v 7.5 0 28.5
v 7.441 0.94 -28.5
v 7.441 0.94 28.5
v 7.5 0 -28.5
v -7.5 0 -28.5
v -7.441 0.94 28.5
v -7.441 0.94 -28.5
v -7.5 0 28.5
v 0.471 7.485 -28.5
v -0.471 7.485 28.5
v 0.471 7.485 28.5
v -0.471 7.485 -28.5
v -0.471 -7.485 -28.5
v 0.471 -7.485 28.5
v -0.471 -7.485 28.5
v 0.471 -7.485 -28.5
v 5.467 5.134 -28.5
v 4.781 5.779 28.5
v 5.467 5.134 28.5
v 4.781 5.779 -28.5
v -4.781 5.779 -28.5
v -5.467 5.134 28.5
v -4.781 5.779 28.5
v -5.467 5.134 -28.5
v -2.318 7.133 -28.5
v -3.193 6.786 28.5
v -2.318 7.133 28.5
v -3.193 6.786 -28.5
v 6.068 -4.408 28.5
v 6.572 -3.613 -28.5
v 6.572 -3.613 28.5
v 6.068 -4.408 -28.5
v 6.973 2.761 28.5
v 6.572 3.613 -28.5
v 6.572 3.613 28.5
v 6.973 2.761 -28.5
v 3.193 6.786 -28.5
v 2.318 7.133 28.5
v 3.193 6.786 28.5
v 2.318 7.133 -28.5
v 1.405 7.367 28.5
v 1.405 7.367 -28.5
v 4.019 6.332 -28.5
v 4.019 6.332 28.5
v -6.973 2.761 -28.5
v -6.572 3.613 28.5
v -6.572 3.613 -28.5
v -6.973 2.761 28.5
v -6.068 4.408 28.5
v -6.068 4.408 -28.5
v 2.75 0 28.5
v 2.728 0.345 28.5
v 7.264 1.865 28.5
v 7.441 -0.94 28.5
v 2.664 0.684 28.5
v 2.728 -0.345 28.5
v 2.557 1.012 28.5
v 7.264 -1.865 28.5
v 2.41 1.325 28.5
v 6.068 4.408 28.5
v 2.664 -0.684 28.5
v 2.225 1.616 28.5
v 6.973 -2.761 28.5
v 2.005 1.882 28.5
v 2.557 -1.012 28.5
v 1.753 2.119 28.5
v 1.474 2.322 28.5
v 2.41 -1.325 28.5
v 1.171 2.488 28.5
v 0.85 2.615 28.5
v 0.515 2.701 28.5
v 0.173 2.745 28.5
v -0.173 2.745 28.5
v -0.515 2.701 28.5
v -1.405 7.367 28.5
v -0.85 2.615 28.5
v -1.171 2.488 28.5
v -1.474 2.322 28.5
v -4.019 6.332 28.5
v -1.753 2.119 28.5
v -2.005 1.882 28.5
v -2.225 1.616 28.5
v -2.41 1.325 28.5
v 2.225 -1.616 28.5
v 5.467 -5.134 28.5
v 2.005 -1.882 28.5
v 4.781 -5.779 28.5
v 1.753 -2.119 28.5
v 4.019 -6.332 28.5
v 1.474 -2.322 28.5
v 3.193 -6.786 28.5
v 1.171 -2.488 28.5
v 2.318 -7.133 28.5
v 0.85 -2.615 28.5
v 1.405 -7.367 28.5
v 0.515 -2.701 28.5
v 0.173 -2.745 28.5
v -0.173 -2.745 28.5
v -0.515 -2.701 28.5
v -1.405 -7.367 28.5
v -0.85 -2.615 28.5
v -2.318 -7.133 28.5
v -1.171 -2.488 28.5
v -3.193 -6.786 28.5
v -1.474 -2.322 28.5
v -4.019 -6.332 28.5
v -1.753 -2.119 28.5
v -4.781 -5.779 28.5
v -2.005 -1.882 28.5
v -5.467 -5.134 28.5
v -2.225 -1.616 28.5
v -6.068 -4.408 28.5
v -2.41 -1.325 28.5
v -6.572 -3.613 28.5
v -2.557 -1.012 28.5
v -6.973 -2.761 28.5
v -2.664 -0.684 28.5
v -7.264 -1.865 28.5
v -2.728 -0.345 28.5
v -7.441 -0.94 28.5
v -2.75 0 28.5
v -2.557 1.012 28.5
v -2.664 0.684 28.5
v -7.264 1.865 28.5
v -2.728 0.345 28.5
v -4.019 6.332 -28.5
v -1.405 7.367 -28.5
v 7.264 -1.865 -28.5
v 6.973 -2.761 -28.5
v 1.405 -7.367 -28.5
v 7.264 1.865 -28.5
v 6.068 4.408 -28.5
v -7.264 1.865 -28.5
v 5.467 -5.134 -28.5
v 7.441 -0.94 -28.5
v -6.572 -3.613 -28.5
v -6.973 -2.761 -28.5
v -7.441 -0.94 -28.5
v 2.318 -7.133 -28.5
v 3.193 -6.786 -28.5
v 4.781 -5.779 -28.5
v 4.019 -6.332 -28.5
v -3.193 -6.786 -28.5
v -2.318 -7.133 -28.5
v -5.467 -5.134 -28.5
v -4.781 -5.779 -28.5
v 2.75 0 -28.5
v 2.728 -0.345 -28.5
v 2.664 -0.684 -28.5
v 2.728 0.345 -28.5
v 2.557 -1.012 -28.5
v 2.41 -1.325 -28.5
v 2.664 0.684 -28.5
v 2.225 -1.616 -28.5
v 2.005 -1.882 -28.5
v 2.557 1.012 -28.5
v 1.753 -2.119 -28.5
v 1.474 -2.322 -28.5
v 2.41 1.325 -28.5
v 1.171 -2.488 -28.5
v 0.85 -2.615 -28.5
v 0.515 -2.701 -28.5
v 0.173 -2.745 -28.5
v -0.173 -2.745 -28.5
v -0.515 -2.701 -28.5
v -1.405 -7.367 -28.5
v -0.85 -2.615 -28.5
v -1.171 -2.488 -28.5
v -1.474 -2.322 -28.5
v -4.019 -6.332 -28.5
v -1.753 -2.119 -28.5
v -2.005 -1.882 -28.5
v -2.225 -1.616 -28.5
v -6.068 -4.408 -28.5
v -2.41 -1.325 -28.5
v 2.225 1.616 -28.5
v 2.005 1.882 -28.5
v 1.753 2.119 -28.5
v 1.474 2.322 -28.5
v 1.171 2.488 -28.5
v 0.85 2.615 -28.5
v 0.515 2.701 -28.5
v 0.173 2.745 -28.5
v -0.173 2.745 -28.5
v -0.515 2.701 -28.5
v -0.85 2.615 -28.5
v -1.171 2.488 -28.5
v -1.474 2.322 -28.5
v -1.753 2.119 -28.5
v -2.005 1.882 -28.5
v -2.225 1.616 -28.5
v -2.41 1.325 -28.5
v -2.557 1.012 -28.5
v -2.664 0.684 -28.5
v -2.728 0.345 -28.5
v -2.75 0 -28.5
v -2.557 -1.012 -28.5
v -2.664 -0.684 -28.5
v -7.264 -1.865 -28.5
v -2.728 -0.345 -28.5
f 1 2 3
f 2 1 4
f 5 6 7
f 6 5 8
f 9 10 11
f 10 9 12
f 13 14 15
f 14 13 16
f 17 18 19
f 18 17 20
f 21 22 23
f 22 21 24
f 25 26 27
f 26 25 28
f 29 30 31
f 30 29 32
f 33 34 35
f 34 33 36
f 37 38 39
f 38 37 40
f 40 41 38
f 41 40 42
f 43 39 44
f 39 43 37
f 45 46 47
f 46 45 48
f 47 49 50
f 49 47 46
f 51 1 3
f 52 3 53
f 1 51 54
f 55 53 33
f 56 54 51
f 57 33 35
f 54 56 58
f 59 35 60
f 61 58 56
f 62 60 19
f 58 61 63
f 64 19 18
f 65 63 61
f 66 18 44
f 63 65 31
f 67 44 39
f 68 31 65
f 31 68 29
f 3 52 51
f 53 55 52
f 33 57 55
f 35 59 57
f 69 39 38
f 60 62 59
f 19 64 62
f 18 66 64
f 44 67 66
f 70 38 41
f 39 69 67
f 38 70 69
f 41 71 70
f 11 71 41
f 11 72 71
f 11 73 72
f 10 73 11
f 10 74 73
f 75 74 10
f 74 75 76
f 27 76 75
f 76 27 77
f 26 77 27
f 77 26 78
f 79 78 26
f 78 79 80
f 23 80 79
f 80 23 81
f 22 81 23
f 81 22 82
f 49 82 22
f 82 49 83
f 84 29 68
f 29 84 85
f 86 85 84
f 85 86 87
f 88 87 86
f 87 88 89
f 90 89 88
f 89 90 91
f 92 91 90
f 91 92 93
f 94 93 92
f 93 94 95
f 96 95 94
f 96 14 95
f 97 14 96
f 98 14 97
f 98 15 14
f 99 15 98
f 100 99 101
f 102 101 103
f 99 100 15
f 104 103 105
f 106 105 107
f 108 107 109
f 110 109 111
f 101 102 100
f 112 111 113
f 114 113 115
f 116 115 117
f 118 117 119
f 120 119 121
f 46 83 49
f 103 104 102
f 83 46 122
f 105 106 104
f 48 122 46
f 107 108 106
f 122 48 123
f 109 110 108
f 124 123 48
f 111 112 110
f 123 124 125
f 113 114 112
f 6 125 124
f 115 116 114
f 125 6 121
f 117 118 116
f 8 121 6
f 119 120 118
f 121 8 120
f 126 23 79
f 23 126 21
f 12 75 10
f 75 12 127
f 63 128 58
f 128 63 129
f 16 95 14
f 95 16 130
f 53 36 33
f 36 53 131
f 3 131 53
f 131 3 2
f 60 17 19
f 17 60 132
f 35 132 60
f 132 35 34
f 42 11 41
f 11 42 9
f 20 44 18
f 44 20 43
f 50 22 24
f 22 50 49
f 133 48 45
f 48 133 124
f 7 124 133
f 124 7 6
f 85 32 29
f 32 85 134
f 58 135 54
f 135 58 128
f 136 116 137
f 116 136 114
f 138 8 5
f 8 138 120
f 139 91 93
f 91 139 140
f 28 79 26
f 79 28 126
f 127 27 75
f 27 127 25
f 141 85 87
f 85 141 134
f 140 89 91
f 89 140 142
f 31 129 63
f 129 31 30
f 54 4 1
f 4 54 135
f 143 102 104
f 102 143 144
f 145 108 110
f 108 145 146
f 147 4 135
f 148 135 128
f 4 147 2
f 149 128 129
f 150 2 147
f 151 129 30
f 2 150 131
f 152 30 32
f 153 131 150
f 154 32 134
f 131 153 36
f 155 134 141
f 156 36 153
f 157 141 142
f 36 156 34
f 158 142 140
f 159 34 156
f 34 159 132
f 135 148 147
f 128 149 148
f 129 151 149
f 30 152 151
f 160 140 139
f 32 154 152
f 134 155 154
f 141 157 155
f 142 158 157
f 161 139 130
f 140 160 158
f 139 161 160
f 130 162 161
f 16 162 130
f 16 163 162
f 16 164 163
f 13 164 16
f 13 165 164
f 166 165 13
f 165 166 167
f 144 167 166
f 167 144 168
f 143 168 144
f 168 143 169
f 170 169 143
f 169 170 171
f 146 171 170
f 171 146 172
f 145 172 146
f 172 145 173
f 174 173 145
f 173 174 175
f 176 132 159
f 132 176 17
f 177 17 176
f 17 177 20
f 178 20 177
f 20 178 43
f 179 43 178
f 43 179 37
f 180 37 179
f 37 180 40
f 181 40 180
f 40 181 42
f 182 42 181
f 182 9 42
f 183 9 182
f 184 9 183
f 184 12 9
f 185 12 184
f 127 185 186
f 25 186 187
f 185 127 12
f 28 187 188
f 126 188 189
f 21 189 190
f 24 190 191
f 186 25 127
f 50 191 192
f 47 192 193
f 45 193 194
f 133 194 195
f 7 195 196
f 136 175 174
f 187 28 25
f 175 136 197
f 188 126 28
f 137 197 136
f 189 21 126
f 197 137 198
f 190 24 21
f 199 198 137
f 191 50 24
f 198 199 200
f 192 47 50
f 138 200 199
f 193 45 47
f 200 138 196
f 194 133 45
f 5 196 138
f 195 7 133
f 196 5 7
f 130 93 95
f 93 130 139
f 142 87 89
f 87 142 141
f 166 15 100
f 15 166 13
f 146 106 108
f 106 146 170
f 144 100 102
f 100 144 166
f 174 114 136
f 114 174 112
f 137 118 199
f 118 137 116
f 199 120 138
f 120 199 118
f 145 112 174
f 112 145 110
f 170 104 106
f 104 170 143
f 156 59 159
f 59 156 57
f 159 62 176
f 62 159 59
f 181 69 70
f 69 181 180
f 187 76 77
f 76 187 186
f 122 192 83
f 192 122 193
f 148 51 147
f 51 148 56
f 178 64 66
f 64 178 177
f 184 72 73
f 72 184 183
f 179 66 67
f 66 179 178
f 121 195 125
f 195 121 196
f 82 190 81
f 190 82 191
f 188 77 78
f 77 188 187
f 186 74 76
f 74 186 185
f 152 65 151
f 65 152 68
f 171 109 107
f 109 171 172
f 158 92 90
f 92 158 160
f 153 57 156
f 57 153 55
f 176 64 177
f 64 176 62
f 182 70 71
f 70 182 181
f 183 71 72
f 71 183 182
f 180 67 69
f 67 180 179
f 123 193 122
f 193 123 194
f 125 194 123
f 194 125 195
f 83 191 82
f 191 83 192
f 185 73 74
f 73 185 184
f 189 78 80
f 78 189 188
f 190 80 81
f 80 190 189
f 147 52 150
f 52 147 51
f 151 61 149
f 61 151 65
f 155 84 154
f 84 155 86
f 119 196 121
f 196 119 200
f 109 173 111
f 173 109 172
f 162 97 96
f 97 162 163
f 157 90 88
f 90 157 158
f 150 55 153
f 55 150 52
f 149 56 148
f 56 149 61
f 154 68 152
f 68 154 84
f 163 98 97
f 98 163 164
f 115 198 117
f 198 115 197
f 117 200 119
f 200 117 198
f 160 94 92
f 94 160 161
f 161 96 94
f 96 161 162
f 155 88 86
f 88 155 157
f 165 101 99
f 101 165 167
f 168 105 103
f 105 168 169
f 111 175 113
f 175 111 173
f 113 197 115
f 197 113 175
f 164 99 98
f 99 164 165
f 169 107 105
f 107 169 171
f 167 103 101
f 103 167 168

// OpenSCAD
$fn = 50;


difference() {
	union() {
		translate(v = [0, 0, -28.5000000000]) {
			cylinder(h = 57, r = 7.5000000000);
		}
	}
	union() {
		translate(v = [0, 0, -100.0000000000]) {
			cylinder(h = 200, r = 2.7500000000);
		}
	}
}
